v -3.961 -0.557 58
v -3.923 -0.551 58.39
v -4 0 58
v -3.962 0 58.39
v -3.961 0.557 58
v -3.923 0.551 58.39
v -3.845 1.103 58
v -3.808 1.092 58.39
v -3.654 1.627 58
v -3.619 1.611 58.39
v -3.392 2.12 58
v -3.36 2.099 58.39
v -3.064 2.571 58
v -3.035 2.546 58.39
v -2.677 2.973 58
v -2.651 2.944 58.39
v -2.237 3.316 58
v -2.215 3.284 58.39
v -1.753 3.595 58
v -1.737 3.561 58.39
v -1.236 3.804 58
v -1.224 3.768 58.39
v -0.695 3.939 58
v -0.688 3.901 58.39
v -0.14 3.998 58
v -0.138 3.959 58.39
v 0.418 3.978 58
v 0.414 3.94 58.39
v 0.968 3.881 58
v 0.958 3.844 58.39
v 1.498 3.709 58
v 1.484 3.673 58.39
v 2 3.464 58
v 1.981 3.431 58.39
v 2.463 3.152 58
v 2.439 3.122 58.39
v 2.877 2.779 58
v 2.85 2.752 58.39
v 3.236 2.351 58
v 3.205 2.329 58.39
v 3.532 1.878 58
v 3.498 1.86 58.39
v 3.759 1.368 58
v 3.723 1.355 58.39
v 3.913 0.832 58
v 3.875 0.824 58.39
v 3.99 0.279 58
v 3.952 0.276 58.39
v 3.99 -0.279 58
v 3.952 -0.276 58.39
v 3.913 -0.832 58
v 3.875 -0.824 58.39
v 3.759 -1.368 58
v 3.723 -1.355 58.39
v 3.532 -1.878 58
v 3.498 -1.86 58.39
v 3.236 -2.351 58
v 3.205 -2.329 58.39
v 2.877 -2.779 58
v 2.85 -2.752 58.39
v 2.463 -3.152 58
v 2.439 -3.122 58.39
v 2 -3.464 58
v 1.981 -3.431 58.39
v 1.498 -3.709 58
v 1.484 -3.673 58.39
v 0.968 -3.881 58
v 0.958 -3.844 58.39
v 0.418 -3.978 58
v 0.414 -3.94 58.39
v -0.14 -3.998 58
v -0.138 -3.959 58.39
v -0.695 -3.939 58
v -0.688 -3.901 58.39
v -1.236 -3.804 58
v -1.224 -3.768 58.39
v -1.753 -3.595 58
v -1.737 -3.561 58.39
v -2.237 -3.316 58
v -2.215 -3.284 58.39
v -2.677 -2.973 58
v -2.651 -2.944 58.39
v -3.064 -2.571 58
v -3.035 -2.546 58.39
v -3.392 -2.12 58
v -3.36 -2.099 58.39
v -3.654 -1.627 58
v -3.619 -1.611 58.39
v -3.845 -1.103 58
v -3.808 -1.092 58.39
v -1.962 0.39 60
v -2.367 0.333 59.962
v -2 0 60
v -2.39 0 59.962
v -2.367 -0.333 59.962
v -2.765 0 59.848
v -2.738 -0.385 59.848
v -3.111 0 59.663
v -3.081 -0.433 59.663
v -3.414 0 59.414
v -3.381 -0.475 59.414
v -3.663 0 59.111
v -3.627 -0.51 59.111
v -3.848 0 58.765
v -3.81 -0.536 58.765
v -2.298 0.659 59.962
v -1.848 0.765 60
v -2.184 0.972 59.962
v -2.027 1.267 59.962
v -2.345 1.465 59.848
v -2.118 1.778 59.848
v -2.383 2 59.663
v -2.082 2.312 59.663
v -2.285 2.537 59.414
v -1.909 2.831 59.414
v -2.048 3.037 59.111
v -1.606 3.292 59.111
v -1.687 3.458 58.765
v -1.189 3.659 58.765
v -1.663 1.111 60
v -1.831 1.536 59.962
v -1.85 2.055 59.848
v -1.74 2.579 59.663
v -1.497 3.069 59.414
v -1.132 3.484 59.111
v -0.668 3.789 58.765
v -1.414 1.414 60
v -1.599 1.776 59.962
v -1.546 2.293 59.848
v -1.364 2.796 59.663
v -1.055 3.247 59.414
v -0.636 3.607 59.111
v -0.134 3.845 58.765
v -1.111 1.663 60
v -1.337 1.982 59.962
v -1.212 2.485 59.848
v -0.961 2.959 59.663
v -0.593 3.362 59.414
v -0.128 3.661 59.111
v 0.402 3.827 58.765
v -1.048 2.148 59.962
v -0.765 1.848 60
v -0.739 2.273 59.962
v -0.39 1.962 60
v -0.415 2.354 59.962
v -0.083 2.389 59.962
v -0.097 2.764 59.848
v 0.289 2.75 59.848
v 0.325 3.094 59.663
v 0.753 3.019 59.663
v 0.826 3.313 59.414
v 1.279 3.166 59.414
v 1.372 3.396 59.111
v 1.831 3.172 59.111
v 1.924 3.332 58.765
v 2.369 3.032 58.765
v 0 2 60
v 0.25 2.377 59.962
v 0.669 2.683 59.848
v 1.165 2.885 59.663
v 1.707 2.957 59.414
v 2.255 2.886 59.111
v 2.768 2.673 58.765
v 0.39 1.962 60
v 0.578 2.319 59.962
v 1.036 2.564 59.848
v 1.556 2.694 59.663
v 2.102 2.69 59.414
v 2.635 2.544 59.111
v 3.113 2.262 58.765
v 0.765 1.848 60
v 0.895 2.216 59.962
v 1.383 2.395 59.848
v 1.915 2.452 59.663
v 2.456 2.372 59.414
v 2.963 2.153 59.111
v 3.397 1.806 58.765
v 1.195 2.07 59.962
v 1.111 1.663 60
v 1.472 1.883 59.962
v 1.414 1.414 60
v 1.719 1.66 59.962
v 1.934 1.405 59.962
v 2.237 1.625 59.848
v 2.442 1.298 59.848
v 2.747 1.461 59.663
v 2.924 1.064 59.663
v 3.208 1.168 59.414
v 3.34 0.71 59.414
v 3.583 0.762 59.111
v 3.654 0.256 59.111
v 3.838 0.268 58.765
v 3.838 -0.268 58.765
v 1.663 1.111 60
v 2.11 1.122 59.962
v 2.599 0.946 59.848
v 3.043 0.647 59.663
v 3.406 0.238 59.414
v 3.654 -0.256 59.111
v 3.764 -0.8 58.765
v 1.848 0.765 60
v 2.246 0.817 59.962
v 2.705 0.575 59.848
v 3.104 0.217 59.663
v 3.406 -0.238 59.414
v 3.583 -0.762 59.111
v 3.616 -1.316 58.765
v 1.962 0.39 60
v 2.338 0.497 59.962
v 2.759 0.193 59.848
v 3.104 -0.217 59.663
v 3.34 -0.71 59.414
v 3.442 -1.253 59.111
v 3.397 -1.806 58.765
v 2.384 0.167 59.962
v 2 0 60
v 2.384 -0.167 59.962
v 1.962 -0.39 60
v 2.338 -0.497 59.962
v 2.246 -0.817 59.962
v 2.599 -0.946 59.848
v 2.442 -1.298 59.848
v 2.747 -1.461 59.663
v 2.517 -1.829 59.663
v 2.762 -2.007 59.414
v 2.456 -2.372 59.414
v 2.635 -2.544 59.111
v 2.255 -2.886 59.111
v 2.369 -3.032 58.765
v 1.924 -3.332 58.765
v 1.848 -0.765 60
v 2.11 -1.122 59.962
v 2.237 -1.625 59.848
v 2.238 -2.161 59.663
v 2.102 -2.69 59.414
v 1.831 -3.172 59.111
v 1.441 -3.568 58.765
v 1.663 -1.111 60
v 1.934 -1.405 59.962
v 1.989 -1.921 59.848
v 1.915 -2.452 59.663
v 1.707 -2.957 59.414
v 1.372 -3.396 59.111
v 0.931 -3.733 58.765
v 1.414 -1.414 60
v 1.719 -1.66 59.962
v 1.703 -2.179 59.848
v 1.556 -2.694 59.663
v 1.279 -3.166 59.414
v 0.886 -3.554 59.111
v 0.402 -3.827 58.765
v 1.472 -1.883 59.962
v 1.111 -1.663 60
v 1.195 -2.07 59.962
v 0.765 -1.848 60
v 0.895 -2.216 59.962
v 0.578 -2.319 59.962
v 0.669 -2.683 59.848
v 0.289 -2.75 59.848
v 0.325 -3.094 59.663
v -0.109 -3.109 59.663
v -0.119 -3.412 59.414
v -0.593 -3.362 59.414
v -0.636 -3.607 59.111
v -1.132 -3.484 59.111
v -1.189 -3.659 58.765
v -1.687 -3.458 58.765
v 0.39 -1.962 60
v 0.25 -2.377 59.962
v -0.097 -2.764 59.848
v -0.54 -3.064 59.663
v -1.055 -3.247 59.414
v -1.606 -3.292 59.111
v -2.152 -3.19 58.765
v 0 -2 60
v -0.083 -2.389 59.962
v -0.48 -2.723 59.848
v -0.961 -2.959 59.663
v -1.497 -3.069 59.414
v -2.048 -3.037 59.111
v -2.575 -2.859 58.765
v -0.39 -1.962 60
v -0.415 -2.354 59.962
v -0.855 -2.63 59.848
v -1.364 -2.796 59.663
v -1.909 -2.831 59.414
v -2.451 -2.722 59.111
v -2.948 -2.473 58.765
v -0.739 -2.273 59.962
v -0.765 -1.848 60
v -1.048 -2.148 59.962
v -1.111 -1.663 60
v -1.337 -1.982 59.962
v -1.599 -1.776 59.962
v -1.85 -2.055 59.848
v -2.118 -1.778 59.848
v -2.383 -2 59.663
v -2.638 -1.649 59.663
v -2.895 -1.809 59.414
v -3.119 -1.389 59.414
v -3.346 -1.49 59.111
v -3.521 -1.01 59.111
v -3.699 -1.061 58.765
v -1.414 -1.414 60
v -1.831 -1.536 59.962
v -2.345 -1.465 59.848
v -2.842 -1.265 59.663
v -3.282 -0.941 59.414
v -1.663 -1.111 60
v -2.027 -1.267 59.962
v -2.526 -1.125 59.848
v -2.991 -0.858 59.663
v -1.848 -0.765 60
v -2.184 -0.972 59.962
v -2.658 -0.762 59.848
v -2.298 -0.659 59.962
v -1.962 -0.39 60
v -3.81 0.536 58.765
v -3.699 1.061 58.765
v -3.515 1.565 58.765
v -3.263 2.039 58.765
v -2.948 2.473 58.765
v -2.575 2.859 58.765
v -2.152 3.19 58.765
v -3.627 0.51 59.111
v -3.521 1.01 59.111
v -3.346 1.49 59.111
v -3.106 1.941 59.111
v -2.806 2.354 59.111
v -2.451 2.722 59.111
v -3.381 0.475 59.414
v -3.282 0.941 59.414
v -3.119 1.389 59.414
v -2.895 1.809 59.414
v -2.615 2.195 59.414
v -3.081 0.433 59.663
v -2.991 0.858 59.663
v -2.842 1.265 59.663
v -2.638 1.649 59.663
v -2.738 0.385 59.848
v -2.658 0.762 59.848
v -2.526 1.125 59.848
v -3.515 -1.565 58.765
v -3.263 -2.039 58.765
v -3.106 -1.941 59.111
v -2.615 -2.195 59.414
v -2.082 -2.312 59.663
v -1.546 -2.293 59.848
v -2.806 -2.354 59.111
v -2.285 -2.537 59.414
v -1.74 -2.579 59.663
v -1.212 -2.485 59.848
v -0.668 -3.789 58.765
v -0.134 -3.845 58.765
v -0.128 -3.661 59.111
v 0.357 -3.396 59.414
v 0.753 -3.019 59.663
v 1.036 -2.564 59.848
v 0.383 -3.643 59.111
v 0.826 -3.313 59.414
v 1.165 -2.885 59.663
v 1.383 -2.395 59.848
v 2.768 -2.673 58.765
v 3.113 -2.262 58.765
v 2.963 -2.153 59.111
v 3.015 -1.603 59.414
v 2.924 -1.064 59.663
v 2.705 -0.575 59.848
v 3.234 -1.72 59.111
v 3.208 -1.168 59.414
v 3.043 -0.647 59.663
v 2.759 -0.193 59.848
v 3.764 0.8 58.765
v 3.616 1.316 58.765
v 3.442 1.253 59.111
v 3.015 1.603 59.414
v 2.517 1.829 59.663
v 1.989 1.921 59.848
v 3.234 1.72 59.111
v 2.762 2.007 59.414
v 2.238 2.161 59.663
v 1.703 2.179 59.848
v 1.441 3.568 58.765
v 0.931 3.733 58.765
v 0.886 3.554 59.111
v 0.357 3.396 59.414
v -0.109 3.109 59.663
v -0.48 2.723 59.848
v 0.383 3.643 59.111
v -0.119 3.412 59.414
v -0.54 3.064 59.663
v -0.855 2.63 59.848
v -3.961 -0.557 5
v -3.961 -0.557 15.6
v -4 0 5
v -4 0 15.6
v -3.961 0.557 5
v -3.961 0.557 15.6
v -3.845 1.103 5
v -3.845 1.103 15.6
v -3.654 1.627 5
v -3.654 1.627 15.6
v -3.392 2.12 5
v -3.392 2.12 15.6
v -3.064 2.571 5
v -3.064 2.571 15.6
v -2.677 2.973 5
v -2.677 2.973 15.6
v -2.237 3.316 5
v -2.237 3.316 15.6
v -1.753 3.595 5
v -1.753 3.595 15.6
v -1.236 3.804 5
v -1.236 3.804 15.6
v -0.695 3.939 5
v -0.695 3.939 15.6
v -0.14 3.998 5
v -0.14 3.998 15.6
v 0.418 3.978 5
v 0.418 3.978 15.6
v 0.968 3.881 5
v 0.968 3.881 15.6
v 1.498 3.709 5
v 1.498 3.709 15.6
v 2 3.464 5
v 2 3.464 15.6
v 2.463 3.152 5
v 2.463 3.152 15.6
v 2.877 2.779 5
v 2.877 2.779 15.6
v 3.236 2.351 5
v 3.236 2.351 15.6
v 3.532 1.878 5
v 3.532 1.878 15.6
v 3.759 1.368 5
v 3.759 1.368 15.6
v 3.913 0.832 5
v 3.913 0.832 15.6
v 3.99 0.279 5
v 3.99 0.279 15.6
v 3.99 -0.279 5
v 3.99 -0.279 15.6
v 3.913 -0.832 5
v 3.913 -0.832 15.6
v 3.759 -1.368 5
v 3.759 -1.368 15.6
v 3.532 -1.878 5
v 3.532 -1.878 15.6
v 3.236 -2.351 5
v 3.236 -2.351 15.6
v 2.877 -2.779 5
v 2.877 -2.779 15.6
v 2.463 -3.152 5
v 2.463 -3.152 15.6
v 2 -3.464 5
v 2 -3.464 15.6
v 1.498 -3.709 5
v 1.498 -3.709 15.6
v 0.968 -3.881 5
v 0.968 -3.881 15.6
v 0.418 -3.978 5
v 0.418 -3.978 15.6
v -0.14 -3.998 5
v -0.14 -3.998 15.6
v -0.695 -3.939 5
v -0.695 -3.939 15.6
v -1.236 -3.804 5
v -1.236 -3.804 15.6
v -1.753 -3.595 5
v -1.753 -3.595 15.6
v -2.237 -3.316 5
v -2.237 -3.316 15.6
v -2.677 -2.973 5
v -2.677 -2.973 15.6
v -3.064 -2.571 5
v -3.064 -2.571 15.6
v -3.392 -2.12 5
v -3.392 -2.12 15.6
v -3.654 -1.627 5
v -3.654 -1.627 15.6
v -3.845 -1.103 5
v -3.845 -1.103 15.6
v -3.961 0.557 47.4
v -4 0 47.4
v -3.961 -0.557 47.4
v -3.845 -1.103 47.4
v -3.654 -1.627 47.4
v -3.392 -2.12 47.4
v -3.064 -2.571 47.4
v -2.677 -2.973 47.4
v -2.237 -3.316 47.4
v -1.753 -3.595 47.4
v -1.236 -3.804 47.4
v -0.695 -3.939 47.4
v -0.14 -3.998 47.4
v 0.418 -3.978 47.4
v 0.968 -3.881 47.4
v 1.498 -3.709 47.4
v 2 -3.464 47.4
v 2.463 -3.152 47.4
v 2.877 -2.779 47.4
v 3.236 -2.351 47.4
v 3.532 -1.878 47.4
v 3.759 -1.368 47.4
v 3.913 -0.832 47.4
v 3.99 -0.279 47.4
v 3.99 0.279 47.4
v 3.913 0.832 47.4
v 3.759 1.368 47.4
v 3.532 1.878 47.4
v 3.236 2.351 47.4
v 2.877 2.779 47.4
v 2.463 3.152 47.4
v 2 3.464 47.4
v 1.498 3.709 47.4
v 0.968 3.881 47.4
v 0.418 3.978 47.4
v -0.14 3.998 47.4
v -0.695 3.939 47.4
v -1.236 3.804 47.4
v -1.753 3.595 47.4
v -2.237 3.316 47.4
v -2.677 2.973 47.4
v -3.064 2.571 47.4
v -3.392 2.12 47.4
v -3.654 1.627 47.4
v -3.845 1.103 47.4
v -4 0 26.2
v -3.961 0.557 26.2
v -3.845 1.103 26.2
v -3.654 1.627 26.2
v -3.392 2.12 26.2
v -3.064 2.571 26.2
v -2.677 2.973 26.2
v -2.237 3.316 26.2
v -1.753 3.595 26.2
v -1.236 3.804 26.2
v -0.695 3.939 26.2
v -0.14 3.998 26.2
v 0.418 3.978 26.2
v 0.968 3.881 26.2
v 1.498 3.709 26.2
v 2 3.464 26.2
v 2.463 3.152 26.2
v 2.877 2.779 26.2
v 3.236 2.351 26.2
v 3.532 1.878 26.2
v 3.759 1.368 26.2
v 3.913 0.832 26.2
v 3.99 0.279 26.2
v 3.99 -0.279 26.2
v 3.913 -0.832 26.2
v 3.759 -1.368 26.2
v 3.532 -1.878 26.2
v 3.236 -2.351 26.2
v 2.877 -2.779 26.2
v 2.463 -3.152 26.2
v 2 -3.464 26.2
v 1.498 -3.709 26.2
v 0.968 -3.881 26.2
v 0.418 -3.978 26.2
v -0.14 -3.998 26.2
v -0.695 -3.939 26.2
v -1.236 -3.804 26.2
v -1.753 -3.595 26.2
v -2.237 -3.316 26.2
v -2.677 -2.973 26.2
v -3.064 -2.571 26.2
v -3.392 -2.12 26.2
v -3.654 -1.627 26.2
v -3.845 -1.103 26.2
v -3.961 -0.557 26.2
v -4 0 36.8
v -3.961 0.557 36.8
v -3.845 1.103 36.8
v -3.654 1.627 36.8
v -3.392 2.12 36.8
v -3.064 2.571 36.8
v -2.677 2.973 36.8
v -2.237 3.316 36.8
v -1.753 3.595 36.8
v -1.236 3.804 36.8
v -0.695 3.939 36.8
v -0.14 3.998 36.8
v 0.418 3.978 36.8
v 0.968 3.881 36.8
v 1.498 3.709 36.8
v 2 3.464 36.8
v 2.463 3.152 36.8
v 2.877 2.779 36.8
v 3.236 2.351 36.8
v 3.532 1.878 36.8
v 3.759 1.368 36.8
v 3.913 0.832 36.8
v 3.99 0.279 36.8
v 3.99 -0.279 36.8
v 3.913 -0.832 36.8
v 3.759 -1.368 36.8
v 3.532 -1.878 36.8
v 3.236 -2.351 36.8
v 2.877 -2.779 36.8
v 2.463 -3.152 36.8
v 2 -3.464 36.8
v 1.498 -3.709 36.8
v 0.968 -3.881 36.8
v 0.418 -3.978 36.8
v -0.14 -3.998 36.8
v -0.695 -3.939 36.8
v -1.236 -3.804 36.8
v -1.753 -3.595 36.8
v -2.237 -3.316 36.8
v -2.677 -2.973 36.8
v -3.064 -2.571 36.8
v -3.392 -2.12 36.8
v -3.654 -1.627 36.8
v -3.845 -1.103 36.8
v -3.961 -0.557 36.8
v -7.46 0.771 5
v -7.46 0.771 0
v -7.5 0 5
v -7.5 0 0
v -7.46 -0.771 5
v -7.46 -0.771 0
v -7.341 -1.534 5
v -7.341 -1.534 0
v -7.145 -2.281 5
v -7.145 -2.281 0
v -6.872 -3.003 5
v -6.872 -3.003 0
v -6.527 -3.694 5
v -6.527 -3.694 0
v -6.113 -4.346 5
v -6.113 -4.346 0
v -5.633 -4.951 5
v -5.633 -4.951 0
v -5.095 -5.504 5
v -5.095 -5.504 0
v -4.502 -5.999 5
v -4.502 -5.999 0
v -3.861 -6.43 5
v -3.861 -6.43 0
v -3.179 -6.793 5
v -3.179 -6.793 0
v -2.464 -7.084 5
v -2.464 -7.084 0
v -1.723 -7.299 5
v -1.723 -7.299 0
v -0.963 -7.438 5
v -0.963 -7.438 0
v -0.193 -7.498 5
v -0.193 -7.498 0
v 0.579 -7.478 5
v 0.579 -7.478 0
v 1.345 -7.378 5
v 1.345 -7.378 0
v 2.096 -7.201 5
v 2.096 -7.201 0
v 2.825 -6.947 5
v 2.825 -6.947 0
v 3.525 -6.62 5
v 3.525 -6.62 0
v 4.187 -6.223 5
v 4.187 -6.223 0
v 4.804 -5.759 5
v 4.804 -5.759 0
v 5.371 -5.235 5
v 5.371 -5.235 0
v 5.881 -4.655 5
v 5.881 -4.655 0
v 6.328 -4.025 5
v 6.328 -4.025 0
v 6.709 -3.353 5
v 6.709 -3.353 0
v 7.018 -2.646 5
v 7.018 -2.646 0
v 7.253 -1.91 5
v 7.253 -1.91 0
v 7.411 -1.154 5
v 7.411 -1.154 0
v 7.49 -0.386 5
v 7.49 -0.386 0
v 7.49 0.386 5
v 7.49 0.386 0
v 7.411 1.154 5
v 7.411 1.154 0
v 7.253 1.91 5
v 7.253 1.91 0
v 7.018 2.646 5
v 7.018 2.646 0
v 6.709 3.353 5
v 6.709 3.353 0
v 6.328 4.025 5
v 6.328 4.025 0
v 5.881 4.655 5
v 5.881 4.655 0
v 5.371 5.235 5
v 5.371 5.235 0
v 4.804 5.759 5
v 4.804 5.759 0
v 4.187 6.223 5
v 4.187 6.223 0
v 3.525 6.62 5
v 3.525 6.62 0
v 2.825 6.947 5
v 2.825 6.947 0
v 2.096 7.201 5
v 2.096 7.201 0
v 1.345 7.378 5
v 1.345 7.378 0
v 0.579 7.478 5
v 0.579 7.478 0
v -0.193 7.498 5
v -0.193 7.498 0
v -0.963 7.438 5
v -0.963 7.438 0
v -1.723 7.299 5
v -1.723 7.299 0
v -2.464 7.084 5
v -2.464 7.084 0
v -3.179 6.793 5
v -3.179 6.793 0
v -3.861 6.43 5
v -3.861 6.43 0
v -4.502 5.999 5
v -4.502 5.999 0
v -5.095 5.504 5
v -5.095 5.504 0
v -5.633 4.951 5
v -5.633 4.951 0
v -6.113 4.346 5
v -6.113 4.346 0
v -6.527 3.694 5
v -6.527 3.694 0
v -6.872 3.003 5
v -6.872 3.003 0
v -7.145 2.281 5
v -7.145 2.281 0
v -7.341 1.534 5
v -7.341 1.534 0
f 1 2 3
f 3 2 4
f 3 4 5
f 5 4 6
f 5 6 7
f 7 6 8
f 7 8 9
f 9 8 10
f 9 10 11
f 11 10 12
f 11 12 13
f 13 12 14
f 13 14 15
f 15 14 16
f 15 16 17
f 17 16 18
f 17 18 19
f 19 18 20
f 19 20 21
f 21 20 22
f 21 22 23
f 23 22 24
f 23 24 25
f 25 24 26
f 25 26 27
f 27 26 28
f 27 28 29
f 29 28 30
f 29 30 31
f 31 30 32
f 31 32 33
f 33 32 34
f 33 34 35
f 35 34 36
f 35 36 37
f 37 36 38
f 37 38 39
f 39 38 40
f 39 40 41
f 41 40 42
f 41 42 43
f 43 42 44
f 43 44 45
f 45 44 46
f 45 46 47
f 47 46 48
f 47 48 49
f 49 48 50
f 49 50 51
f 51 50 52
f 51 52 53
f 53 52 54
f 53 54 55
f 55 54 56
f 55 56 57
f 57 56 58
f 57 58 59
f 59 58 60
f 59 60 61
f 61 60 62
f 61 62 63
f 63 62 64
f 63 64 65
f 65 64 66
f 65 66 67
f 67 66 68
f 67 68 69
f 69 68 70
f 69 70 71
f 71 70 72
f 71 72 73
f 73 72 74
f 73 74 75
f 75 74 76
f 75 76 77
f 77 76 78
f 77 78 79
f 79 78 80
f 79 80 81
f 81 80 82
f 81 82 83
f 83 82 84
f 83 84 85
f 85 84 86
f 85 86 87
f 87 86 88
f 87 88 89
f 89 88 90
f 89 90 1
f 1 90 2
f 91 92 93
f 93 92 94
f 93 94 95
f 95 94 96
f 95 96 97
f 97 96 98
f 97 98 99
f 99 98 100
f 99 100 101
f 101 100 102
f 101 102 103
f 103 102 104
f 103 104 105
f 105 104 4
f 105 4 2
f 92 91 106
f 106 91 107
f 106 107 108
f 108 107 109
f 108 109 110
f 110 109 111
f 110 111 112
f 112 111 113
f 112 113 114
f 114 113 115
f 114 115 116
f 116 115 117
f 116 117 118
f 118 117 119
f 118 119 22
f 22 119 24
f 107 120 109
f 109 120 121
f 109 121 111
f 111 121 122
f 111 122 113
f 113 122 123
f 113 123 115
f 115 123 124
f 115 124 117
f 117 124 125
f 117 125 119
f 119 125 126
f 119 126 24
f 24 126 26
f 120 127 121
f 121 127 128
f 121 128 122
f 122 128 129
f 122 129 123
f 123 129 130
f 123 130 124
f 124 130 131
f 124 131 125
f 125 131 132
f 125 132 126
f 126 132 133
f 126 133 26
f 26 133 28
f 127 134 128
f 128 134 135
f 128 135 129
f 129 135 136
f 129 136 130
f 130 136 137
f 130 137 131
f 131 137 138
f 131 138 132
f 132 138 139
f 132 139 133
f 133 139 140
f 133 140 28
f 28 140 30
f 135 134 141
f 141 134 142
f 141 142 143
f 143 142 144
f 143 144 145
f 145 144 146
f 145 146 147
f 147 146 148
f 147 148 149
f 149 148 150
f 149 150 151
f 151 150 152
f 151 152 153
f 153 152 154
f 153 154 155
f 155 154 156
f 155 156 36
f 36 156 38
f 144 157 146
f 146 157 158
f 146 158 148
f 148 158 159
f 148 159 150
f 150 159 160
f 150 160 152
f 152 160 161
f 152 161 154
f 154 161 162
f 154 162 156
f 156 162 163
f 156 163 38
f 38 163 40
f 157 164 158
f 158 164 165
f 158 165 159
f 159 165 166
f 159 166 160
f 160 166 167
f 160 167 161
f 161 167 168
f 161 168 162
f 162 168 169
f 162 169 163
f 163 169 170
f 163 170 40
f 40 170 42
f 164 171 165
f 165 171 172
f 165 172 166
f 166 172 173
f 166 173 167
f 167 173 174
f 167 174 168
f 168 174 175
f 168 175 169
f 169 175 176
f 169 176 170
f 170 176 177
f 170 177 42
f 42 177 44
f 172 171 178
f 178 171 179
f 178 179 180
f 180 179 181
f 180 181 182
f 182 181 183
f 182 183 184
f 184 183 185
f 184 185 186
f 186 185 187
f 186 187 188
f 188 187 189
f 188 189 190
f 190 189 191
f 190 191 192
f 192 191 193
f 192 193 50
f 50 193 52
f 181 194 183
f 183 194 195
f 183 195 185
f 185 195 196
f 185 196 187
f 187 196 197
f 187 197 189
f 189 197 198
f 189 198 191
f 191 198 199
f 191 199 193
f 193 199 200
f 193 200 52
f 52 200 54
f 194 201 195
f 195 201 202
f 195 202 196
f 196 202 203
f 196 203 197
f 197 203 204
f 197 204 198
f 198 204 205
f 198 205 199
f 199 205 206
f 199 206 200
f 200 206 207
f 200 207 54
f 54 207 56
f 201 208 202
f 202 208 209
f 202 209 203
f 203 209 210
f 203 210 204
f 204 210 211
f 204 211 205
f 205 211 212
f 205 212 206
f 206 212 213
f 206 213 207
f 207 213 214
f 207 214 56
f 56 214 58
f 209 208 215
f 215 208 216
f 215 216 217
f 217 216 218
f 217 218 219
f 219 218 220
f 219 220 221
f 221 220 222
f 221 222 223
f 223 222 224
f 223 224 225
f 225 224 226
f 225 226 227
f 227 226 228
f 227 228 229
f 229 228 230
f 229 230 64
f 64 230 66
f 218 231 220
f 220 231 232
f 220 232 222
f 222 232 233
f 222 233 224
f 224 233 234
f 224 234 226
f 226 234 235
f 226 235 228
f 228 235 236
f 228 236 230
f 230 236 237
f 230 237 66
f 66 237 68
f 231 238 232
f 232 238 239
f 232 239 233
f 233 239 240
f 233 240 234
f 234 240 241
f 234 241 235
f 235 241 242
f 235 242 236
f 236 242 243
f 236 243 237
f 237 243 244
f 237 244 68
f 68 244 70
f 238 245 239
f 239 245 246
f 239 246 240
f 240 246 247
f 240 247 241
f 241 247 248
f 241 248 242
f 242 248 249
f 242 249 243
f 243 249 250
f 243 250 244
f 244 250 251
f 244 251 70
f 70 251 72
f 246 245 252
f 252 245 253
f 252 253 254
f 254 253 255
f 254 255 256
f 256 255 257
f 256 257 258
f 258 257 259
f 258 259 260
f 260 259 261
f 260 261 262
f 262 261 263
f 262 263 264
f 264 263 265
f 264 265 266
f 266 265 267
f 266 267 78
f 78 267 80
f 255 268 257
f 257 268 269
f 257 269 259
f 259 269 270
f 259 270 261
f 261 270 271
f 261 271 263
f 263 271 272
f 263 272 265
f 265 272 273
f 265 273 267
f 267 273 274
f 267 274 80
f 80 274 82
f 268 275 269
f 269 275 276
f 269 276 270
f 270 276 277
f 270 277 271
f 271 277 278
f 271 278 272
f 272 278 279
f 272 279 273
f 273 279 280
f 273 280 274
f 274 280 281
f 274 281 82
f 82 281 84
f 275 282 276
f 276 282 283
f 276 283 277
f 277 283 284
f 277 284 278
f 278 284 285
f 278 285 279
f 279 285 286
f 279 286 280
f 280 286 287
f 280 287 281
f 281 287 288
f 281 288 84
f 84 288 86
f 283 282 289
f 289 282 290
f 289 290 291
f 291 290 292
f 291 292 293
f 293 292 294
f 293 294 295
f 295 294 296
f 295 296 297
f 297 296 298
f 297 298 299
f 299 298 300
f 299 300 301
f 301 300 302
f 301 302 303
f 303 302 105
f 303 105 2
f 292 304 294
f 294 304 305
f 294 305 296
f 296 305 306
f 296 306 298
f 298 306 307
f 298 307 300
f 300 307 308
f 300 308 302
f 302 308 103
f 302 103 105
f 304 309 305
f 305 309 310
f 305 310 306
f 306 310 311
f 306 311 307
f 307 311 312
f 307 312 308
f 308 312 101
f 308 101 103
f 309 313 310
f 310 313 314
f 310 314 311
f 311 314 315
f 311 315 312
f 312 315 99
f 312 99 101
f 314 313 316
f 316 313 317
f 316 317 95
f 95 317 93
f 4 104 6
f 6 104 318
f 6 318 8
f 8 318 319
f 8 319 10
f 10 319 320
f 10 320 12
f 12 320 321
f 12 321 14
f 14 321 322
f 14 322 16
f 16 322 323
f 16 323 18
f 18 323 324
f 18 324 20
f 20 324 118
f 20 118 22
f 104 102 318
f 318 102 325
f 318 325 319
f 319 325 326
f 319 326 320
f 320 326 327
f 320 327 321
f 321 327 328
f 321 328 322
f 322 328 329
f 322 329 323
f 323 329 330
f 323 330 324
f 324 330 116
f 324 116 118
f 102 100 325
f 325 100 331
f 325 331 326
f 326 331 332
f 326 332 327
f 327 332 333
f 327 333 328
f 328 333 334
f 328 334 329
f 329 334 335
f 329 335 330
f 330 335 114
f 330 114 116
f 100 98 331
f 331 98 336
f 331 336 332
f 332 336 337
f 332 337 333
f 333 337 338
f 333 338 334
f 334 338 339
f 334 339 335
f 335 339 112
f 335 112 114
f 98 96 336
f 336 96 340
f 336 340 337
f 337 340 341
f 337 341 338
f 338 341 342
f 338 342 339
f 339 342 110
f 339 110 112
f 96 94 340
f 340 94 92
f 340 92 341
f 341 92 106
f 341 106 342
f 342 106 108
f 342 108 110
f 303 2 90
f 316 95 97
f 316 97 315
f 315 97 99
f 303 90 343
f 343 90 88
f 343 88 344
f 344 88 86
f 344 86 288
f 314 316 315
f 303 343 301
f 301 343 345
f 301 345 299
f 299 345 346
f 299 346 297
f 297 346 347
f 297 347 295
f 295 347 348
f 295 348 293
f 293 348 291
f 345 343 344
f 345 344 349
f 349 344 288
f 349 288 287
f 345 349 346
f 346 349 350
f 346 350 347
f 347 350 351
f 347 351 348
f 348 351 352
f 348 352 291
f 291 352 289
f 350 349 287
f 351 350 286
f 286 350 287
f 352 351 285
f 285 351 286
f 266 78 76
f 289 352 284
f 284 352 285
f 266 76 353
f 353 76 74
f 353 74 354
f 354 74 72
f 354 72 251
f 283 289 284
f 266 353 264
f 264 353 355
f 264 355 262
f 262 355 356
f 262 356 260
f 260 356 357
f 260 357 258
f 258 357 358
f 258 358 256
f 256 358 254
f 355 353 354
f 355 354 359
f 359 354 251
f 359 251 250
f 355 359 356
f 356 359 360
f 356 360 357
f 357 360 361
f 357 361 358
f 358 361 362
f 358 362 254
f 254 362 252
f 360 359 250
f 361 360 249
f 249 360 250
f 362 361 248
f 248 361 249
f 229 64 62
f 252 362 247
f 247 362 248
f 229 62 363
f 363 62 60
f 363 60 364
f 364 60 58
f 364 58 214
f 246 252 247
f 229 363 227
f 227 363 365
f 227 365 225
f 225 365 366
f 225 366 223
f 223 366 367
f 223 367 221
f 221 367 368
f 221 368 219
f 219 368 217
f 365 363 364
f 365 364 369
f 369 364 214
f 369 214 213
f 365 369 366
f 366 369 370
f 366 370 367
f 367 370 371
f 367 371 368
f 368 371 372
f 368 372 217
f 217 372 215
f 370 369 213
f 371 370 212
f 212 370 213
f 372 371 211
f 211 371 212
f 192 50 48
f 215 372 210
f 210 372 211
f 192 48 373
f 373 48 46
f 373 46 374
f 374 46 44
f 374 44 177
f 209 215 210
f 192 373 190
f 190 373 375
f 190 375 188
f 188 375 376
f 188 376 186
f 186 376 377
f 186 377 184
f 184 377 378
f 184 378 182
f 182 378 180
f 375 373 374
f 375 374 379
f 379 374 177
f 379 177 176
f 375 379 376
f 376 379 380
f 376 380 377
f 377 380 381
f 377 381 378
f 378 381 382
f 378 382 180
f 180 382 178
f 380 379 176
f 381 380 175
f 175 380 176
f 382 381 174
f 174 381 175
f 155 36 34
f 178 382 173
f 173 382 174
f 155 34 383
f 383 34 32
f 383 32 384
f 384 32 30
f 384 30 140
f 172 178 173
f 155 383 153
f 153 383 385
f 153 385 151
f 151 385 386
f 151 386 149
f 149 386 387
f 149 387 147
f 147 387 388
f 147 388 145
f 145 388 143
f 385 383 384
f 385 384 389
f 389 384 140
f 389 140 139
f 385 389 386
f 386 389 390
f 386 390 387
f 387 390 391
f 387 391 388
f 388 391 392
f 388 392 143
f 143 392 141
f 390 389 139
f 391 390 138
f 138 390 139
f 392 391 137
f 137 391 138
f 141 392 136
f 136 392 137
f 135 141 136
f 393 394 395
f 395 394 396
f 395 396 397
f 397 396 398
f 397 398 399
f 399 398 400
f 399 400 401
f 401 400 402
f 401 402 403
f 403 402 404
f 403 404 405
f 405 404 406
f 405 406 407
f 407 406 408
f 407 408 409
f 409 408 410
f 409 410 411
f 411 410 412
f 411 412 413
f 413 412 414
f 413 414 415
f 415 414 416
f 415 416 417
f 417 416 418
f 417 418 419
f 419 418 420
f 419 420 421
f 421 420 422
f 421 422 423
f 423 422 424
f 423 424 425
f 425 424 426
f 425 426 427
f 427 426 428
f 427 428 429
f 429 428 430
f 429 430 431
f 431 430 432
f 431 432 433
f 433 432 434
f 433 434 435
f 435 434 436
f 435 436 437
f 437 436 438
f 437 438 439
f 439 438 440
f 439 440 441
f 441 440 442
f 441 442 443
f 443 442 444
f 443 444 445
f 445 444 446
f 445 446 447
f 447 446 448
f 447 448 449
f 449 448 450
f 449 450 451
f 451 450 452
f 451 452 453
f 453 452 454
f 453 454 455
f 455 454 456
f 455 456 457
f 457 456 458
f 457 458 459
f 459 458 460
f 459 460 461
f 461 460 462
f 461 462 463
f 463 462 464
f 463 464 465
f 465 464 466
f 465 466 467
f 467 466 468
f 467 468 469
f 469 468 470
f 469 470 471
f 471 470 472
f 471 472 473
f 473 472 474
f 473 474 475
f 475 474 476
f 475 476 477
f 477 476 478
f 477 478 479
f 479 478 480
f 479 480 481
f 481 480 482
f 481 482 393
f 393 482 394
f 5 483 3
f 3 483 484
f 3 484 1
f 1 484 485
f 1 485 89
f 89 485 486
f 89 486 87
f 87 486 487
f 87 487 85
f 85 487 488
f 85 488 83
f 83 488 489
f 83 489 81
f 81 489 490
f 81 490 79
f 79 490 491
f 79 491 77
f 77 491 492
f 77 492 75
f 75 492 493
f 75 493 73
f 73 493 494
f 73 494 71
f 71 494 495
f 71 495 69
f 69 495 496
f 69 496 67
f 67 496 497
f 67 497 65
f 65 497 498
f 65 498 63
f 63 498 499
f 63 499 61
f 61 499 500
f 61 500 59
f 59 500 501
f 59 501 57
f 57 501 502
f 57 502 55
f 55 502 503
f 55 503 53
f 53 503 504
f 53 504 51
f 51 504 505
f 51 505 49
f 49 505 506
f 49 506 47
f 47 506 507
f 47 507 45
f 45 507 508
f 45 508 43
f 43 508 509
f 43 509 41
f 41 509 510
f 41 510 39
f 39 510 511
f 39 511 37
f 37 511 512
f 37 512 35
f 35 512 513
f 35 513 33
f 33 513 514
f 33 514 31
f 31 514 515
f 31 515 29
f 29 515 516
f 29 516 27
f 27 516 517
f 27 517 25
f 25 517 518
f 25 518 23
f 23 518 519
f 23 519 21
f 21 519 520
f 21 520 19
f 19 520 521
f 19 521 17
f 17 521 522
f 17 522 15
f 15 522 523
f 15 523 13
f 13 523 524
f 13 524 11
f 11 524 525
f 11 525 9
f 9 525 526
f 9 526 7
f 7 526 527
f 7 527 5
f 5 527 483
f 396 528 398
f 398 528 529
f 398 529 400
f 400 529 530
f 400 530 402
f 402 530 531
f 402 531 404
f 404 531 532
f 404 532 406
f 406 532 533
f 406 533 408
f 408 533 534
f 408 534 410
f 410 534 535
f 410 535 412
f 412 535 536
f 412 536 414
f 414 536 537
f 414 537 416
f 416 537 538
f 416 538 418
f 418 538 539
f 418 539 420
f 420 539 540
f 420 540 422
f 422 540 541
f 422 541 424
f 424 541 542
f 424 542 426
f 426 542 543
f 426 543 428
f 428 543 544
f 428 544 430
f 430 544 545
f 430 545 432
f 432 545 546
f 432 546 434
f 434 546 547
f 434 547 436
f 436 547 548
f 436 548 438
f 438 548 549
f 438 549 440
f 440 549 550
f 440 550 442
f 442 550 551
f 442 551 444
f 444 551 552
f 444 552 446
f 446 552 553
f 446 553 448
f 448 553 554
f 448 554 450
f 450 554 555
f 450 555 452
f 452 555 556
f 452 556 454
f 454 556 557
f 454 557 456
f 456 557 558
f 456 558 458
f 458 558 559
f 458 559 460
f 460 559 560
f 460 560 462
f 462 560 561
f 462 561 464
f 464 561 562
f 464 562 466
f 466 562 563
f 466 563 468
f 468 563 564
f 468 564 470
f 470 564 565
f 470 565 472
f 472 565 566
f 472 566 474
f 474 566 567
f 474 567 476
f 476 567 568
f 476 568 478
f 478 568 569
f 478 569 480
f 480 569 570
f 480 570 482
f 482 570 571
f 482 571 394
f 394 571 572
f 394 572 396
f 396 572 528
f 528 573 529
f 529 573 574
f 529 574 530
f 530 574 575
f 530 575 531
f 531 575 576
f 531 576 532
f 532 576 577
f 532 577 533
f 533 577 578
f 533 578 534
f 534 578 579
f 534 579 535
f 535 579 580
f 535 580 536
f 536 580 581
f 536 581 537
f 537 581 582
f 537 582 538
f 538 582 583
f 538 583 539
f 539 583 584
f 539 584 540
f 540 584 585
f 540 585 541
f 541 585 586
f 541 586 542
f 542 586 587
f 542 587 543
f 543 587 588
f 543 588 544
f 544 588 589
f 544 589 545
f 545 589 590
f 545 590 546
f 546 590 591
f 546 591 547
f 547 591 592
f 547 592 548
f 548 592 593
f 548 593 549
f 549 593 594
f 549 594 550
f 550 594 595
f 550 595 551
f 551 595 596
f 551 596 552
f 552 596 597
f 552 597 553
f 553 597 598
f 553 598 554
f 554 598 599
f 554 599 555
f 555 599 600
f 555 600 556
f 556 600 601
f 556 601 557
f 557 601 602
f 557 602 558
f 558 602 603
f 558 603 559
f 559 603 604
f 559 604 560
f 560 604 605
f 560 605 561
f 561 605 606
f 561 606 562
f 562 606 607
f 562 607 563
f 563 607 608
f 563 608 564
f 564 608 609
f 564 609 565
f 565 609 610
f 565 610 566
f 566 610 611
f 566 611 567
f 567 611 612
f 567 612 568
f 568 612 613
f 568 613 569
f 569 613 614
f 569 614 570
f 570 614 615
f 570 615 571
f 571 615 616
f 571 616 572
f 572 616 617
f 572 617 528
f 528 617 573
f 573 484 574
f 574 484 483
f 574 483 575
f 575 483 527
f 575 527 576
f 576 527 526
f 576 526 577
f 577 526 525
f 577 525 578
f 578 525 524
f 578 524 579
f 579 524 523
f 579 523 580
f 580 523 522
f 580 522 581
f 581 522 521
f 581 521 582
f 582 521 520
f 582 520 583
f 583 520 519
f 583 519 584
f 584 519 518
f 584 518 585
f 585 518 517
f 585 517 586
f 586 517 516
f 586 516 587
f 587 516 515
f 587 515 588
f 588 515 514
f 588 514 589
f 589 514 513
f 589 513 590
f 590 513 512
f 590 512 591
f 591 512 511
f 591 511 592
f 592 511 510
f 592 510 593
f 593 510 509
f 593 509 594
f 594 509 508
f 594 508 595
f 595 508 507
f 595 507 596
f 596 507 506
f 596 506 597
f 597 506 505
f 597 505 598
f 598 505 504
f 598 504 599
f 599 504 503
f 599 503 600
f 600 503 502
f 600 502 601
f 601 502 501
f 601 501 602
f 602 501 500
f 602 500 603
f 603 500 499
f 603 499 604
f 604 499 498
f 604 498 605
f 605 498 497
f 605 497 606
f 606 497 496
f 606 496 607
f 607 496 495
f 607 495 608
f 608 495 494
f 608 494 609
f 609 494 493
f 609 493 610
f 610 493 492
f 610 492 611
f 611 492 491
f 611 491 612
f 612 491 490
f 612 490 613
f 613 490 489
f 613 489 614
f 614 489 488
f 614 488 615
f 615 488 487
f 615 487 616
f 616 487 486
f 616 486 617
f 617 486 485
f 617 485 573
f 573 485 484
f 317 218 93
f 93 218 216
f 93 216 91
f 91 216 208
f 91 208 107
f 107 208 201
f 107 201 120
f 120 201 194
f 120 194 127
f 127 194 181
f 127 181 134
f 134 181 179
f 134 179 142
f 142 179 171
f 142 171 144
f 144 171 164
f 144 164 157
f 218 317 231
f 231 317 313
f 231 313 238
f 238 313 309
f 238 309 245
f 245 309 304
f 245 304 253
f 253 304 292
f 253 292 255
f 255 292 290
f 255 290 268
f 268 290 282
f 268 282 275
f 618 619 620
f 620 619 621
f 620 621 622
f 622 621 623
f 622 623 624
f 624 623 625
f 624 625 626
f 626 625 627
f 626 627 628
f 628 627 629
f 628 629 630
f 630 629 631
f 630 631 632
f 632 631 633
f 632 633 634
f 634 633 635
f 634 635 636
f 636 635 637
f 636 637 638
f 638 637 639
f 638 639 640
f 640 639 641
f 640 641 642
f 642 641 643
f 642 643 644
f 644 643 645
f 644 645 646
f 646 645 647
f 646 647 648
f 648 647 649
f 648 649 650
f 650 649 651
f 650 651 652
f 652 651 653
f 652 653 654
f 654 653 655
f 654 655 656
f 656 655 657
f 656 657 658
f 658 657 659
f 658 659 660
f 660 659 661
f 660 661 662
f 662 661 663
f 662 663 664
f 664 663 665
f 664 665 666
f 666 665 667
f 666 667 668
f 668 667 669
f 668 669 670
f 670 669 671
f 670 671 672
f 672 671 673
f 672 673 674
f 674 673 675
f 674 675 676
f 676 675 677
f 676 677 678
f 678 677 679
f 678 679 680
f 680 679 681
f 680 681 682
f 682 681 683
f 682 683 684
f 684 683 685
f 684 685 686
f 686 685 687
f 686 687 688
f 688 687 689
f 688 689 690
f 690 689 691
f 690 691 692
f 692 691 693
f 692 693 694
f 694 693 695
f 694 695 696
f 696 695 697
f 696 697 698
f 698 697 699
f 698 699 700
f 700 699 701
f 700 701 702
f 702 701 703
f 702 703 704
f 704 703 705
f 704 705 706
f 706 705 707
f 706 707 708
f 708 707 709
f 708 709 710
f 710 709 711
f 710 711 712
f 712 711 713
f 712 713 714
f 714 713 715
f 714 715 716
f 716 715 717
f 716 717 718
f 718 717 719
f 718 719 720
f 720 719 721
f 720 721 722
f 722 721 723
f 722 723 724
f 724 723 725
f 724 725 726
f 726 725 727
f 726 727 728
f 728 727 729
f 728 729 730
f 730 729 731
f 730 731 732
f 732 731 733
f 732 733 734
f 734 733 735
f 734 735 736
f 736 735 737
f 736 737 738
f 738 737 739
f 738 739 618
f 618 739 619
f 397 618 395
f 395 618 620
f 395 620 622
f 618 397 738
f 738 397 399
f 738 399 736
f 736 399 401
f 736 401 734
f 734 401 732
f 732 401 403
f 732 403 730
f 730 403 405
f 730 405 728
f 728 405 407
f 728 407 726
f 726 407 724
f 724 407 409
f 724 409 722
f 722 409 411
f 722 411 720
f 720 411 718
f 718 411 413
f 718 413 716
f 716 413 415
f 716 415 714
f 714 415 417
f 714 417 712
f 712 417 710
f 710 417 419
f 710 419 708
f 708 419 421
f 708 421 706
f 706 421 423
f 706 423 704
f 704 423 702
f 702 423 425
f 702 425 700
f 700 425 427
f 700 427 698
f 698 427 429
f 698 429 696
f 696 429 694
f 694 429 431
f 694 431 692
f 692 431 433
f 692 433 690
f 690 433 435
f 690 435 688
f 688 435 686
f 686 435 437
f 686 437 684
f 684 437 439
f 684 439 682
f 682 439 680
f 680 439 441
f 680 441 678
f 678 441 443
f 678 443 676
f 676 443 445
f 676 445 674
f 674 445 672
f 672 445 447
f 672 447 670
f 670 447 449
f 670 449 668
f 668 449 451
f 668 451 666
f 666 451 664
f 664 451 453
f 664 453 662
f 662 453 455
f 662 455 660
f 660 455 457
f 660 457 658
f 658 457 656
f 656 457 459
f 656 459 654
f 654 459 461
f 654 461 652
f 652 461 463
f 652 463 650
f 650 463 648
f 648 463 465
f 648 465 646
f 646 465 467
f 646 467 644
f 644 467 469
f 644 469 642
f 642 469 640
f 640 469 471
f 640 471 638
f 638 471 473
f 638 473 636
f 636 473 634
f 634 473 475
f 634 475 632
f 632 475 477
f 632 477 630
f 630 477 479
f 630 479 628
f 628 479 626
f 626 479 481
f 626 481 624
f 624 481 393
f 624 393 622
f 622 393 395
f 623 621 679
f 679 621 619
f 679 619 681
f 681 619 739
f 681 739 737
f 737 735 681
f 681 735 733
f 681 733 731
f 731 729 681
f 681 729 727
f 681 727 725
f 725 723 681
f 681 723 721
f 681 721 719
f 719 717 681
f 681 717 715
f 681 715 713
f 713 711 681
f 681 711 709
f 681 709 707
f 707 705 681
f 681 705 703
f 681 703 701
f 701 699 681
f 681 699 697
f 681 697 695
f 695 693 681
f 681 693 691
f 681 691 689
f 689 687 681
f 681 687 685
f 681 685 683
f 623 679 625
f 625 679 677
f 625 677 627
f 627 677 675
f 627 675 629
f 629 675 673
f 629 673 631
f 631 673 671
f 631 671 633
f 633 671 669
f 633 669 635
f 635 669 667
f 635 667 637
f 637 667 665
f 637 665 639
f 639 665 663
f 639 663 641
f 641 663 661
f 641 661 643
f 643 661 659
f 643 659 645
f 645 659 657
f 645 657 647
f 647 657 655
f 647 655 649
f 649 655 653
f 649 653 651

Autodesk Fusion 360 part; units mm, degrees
sketch "Skizze1" plane through (0, 0, 0) normal (0, 0, 1) x (1, 0, 0)
  circle A0 centre (0, 0) radius 7.5
  circle A1 centre (0, 0) radius 4
  dimension "d1" = 15
  dimension "d2" = 8
extrude "Extrusion1" add sketch "Skizze1" along normal blind 5
extrude "Extrusion2" add sketch "Skizze1" along normal blind 60 contours A1
fillet "Abrundung1" radius 2 1 edges at (-3.7293, -1.4465, 60)
